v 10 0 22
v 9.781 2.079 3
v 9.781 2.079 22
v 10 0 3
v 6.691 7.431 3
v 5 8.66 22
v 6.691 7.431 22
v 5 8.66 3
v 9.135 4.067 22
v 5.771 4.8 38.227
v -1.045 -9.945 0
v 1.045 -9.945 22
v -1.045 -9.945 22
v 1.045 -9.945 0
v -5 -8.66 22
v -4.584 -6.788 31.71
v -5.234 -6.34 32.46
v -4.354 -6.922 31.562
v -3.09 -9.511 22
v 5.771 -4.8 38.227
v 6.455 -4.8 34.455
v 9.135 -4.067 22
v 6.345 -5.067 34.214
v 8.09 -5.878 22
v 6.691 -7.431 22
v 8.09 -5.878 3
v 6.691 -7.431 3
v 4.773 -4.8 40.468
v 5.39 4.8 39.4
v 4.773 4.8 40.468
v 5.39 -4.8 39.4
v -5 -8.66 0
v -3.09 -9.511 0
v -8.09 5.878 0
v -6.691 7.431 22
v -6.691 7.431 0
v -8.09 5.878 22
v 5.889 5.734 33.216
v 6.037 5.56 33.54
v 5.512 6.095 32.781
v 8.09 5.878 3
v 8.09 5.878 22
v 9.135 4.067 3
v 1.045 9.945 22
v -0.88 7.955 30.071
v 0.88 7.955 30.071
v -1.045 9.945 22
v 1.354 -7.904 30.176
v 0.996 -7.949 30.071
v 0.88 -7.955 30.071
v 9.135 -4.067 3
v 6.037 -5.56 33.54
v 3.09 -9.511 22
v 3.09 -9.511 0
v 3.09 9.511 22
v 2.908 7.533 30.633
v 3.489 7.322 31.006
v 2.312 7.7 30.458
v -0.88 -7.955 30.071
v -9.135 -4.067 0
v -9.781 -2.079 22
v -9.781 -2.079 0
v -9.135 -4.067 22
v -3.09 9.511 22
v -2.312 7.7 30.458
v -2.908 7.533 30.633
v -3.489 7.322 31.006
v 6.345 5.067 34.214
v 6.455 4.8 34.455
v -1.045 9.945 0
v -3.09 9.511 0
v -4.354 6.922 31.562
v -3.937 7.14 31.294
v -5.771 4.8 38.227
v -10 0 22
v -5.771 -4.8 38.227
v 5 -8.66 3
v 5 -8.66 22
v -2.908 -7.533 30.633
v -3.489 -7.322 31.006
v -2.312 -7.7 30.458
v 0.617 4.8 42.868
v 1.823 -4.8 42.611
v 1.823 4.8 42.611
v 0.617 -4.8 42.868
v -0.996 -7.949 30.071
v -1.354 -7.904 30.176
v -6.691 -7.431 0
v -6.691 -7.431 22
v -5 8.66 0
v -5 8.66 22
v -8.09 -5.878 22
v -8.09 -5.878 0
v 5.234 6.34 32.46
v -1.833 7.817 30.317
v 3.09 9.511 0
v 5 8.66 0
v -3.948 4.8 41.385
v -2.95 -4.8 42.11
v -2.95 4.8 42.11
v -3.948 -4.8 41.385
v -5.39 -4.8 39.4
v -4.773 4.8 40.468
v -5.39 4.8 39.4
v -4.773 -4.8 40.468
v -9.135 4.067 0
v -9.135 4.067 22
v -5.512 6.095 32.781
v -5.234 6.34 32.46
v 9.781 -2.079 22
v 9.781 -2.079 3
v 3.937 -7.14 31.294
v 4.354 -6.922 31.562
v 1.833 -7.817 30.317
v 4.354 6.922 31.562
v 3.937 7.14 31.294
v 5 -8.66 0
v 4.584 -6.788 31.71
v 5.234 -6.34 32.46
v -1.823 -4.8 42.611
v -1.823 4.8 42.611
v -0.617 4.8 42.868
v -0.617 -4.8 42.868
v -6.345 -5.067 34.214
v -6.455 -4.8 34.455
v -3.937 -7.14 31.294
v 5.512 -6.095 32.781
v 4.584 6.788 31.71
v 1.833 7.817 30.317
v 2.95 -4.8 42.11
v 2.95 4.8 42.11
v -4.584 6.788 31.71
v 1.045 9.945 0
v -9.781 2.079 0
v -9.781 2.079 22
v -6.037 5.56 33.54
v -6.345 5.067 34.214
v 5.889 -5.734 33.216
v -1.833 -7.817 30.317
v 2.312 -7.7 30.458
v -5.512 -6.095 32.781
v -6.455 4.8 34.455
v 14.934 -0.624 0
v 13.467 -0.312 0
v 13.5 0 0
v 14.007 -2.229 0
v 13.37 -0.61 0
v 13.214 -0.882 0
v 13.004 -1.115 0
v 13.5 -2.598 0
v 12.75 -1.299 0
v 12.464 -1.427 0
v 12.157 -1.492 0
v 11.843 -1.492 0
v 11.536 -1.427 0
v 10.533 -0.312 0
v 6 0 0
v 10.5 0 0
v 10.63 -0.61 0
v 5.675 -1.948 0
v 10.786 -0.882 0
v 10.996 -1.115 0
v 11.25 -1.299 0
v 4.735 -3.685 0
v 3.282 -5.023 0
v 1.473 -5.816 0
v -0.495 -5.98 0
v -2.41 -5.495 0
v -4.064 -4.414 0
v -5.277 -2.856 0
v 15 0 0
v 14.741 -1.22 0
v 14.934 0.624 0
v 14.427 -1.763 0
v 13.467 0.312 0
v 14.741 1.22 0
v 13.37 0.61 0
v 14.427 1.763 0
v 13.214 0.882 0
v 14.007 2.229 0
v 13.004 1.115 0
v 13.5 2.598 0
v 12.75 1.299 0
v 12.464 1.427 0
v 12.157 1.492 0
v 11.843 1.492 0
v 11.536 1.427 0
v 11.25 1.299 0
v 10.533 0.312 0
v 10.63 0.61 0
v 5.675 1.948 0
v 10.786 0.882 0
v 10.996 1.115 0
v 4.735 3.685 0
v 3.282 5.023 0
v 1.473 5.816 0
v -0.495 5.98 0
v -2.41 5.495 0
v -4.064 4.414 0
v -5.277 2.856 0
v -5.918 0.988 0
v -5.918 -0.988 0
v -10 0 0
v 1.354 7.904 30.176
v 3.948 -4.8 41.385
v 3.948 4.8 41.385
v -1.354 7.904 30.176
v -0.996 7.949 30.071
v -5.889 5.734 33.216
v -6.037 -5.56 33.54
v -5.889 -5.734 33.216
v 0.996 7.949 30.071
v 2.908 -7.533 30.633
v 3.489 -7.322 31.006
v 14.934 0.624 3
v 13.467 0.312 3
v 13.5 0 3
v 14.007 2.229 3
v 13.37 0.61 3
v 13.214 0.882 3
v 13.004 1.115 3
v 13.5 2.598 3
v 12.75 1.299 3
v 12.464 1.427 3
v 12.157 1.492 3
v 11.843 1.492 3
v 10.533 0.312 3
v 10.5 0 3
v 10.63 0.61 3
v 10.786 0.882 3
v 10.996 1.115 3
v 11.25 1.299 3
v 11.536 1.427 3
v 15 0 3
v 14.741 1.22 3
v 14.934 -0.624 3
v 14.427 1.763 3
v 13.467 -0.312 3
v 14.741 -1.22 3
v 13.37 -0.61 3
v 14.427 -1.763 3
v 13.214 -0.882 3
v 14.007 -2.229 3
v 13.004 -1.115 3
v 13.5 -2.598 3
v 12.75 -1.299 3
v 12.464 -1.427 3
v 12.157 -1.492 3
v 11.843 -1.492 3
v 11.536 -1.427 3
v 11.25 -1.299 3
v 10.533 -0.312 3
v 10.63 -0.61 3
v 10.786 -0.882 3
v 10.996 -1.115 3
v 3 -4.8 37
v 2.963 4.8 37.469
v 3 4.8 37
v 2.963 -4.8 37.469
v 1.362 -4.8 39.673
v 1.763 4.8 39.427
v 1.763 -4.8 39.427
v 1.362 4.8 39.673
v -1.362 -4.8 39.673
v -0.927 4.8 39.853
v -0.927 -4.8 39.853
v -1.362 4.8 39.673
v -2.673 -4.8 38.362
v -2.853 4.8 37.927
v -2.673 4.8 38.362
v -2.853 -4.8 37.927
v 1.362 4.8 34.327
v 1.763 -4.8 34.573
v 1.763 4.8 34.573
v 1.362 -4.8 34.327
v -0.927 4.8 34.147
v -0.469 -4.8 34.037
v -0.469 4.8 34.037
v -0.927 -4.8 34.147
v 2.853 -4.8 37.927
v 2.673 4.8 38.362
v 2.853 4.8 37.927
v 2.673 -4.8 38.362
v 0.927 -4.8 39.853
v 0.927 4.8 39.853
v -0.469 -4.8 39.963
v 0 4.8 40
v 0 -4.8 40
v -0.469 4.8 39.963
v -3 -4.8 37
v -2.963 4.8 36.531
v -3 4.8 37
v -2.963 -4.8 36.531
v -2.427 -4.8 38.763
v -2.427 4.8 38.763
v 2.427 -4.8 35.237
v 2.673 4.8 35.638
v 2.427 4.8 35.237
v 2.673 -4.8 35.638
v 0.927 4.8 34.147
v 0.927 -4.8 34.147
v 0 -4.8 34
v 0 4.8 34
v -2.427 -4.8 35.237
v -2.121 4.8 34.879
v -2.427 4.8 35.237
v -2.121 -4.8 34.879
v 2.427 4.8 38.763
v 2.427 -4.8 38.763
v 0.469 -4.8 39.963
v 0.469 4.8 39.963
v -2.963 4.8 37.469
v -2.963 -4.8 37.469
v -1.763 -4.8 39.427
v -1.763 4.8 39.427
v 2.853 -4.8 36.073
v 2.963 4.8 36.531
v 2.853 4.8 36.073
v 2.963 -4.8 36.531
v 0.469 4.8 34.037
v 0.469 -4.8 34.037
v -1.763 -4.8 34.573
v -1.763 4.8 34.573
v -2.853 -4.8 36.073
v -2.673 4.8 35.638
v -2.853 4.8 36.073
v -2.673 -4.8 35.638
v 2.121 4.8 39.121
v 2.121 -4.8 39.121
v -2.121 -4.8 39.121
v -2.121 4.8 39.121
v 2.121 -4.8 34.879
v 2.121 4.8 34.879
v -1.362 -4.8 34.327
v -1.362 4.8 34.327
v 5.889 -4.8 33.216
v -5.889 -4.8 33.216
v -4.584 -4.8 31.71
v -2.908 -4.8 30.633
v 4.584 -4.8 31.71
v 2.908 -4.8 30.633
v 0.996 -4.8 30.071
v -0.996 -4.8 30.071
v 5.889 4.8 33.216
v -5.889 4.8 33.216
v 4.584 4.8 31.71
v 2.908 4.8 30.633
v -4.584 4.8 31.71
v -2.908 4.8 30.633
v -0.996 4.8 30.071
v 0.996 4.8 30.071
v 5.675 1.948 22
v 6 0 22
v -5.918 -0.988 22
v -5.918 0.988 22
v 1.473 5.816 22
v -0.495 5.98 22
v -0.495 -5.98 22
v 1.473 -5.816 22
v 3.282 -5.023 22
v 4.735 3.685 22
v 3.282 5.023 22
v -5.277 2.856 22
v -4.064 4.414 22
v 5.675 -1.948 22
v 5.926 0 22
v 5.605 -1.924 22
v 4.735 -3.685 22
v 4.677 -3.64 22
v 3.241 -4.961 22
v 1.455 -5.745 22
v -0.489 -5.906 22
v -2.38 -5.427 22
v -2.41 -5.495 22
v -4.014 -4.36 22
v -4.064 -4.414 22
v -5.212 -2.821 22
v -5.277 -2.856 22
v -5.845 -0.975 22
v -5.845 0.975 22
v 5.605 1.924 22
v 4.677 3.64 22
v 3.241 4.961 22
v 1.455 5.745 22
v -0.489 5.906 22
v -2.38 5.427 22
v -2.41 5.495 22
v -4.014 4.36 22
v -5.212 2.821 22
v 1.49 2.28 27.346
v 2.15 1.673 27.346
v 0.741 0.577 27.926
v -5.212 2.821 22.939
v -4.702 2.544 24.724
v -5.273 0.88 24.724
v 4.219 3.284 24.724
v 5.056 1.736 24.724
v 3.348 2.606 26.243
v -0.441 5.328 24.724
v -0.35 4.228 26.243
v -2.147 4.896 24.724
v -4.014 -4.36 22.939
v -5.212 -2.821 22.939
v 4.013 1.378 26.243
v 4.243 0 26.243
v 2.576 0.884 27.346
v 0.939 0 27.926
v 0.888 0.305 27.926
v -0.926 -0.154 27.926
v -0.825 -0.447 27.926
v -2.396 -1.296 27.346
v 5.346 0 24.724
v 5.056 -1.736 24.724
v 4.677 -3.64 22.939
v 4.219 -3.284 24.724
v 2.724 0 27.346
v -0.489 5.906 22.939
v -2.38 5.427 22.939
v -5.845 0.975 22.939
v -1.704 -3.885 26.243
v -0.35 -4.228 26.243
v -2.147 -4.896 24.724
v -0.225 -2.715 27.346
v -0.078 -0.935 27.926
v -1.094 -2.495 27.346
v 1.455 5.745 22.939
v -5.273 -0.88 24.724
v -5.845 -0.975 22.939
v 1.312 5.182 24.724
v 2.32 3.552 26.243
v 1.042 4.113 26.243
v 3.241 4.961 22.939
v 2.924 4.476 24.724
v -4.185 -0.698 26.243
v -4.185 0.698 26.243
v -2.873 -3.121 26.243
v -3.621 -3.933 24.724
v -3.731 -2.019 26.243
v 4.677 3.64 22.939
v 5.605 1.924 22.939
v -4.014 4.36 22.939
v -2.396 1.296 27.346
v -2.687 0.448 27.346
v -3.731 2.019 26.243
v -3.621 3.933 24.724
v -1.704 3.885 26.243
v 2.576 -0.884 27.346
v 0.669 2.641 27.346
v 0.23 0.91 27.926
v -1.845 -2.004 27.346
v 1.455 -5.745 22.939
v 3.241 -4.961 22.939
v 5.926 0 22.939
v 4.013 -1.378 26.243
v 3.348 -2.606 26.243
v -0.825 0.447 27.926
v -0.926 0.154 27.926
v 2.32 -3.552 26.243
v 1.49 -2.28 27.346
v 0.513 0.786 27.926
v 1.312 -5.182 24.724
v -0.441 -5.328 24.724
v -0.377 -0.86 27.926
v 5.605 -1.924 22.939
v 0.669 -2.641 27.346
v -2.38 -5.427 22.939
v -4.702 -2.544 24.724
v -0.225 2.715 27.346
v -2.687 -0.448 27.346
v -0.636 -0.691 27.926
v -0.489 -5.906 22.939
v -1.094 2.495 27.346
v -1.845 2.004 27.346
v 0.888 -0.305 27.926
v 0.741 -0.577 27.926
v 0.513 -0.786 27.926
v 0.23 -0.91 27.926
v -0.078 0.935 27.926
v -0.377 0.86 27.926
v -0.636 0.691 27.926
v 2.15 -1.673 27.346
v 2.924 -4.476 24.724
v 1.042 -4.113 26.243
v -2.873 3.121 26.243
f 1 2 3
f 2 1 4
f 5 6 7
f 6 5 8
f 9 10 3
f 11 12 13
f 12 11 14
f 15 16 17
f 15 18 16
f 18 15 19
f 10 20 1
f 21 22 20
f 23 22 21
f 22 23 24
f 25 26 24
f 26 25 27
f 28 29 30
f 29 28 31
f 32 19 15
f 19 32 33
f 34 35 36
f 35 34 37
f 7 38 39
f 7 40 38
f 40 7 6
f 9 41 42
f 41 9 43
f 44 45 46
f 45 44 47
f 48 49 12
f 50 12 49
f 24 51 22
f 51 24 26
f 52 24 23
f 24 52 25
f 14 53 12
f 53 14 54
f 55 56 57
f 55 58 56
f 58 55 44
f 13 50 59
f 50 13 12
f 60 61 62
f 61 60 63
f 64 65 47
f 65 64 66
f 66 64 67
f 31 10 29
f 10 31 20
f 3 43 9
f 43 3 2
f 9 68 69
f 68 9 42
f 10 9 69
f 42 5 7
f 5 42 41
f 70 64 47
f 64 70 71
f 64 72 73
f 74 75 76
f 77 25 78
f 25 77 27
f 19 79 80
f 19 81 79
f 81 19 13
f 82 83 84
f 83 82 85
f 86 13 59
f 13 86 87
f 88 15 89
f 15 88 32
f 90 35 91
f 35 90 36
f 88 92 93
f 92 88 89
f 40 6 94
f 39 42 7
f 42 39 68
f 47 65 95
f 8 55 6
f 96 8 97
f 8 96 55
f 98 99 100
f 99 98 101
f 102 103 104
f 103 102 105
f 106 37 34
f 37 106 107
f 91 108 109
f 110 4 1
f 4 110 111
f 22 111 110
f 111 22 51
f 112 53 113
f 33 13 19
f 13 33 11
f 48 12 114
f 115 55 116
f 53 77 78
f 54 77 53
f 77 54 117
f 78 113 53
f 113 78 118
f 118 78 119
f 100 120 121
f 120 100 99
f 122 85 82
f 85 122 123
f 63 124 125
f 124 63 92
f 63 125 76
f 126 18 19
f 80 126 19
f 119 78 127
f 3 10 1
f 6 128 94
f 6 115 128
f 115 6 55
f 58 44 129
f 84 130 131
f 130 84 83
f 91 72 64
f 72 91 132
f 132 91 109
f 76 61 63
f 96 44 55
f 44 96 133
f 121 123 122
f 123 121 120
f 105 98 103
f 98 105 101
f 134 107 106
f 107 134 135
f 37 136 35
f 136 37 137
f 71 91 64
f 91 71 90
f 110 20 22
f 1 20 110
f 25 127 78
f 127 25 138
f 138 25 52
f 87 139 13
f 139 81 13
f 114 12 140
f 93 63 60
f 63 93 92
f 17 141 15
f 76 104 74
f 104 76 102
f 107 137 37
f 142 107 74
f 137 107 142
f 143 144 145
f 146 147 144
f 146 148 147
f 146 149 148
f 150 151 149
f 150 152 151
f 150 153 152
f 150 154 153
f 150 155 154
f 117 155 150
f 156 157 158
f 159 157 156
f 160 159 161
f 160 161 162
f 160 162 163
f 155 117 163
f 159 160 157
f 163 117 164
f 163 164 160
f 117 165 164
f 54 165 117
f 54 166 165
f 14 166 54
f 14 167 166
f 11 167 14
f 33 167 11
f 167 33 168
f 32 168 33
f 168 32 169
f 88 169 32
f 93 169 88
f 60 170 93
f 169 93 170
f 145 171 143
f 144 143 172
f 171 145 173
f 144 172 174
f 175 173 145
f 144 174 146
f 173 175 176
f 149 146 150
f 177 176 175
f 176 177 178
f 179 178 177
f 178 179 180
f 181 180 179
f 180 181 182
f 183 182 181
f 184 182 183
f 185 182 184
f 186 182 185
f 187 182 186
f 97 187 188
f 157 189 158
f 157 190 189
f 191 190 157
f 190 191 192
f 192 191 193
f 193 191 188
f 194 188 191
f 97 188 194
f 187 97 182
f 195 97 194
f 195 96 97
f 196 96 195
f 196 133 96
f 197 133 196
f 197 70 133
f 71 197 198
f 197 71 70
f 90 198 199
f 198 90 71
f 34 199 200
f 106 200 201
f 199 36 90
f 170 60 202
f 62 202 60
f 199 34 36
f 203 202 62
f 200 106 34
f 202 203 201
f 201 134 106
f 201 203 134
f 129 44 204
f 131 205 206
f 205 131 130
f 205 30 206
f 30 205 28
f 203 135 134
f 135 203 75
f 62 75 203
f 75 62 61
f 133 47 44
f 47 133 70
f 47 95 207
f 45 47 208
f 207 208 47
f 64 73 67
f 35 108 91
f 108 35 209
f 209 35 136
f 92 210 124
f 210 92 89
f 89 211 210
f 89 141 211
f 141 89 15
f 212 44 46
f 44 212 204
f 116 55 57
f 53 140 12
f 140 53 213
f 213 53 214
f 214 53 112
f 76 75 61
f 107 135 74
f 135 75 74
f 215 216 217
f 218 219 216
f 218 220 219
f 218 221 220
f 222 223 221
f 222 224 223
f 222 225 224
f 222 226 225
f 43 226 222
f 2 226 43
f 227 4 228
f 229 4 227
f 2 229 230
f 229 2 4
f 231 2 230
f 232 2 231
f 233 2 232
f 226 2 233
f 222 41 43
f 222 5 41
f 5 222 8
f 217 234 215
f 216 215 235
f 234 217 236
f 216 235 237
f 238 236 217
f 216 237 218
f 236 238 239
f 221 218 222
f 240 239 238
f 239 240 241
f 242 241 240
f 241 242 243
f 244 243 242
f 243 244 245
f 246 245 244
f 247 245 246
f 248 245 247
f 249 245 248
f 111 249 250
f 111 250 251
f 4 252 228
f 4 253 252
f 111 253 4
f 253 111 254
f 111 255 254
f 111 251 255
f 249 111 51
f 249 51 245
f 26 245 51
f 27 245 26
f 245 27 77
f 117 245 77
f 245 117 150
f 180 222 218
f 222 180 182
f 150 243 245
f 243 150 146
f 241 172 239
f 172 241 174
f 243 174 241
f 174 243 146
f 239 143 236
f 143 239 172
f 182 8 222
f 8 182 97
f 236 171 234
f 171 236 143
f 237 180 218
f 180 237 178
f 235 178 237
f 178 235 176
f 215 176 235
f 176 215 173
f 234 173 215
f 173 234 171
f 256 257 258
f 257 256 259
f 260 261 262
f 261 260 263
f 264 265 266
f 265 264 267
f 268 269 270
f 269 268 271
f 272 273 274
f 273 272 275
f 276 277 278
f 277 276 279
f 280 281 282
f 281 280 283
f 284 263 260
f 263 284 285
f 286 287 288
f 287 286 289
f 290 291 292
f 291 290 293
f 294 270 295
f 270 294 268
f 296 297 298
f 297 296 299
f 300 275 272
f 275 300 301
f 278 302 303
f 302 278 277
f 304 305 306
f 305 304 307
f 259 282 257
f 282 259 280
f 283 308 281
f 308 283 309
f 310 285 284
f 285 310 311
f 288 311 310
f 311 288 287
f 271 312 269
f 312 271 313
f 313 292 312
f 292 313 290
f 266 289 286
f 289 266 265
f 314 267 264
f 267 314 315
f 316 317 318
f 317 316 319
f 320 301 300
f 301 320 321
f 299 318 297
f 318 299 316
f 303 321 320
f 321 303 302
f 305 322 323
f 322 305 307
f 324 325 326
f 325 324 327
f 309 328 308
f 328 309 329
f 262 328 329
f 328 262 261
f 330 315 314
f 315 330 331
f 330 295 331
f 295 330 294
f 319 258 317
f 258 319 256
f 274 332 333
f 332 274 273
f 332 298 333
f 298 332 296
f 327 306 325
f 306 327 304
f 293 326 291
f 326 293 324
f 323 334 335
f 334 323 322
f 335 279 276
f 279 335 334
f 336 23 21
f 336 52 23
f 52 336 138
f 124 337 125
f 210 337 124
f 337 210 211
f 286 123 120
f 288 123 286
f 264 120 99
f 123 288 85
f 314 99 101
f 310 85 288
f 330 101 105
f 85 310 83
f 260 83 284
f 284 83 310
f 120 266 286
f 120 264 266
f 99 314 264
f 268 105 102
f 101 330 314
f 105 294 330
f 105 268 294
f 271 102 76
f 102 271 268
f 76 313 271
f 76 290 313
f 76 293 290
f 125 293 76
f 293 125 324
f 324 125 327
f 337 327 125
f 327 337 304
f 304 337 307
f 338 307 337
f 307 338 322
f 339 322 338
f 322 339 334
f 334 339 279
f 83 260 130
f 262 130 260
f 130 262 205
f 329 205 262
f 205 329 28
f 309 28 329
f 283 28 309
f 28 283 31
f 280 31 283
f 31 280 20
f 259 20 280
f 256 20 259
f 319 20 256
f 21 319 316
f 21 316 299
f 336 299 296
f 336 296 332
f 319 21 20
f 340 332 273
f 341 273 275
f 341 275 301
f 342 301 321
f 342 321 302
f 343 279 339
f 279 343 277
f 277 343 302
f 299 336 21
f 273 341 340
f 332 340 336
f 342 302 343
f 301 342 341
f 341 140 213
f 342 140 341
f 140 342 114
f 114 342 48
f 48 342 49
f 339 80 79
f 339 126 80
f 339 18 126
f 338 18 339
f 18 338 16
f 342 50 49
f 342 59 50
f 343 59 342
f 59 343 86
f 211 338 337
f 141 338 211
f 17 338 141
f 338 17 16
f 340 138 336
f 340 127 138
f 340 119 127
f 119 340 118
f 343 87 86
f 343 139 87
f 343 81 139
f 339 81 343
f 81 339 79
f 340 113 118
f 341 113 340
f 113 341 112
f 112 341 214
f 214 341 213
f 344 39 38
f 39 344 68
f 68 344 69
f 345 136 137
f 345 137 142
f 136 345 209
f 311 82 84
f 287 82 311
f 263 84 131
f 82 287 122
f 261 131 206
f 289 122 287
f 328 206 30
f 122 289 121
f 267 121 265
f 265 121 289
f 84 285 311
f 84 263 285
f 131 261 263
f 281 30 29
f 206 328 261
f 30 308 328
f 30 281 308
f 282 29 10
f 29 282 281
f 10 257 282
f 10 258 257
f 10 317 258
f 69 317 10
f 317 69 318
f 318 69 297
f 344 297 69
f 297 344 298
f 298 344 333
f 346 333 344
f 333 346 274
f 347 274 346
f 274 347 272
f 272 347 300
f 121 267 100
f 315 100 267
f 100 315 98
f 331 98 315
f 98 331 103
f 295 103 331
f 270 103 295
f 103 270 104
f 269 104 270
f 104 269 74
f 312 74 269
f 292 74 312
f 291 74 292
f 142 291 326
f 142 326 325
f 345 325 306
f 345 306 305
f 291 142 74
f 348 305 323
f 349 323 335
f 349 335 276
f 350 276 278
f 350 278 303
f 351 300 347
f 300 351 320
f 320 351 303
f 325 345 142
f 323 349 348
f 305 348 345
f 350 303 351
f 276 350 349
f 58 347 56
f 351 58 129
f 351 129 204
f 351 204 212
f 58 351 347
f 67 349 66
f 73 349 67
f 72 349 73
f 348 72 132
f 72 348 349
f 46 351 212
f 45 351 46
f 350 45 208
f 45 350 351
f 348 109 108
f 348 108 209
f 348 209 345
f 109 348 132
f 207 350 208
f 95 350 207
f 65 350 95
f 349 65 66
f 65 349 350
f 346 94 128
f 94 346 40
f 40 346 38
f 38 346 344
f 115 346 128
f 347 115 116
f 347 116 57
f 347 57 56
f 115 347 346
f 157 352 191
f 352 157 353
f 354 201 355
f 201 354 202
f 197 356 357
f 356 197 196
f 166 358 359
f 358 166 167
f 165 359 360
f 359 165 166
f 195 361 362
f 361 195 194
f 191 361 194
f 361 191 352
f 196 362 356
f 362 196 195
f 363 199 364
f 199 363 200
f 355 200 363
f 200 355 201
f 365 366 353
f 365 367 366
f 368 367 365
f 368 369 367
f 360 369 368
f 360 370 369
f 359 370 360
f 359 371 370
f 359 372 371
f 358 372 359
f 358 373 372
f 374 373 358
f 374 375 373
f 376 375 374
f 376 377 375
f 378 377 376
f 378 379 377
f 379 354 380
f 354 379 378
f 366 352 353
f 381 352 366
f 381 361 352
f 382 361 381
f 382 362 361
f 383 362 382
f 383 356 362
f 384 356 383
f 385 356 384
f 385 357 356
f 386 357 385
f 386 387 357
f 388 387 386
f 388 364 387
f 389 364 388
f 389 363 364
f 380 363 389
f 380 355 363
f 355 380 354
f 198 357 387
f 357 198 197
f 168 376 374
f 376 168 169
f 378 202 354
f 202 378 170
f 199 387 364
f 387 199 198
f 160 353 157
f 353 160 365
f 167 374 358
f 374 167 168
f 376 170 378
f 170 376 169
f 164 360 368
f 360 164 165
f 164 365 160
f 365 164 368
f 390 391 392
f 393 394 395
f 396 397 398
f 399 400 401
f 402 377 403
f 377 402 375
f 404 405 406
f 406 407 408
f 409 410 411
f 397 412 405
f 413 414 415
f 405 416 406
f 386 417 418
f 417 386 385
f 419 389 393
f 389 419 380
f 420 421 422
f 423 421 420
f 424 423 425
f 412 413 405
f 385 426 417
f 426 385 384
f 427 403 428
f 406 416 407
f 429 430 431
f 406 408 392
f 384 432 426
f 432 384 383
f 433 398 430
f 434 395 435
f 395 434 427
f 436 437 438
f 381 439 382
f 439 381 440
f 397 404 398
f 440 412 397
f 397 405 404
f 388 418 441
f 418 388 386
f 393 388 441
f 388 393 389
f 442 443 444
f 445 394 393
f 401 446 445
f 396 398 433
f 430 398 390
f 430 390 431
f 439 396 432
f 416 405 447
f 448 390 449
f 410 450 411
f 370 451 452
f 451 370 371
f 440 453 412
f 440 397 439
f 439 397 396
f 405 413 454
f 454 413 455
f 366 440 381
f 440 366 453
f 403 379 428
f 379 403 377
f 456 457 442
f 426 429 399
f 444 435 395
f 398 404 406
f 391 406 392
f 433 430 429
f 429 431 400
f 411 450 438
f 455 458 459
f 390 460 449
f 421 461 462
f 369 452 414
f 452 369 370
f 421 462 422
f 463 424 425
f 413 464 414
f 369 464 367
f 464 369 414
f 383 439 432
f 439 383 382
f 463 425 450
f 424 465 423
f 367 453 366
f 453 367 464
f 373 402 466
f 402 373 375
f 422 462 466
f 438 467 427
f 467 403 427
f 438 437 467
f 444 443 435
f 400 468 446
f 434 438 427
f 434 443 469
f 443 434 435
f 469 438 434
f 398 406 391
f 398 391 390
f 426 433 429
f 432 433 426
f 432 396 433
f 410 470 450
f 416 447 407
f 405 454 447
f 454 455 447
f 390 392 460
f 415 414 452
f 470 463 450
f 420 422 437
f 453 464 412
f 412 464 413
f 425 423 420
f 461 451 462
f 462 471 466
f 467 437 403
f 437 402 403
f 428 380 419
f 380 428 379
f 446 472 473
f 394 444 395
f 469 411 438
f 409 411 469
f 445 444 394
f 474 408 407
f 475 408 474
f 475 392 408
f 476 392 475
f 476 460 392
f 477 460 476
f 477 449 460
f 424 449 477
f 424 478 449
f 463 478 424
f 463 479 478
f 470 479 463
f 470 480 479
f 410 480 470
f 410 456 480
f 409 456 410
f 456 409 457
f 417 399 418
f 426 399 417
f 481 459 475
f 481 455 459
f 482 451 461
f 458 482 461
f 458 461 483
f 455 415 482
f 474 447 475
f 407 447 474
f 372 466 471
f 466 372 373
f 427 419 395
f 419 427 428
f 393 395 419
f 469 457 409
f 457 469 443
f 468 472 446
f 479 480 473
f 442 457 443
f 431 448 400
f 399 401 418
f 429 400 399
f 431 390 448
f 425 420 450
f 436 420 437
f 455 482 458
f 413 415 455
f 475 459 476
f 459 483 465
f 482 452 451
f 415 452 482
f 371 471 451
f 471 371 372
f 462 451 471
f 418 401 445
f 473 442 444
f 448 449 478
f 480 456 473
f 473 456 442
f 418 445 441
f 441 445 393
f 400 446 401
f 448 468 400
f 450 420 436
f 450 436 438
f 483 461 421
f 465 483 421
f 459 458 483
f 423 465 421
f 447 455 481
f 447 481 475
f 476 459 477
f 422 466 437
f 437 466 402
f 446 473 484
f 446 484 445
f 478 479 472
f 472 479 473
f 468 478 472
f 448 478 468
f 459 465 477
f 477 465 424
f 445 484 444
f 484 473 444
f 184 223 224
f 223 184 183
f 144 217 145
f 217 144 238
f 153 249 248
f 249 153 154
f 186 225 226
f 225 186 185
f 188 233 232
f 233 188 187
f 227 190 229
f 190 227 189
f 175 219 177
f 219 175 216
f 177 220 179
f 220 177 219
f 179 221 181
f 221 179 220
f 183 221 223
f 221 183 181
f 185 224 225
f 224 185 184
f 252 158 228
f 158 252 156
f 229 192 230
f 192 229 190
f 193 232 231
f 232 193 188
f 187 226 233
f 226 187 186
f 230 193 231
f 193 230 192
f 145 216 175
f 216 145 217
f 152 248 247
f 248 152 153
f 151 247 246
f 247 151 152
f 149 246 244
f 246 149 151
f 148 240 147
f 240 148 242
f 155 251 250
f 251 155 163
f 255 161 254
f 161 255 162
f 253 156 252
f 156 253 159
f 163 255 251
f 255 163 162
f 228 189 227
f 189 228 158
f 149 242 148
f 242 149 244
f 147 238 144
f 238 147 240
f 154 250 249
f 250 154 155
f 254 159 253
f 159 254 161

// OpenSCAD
difference()
{
    union()
    {
    hull()
    {
        cylinder(r=20/2, h=22);
        translate([0,9.6/2,37]) rotate([90,0,0]) cylinder(r=11.8/2, h=9.6, $fn=30);
        
    }
    hull()
    {
        cylinder(r=20/2, h=3);
        translate([12,0,0]) cylinder(r=3,h=3,$fn=30);
    }
    }
    
    translate([0,15/2,37]) rotate([90,0,0]) cylinder(r=3, h=15, $fn=40);
    translate([0,-9.6/2,37]) rotate([90,0,0]) cylinder(r=14/2, h=9.6);
    translate([0,9.6+9.6/2,37]) rotate([90,0,0]) cylinder(r=14/2, h=9.6);
    cylinder(r=12/2,h=22);
    translate([0,0,22])sphere(r=12/2);

    translate([12,0,0]) cylinder(r=1.5,h=30,$fn=30);
    
    //cube(30);
}
